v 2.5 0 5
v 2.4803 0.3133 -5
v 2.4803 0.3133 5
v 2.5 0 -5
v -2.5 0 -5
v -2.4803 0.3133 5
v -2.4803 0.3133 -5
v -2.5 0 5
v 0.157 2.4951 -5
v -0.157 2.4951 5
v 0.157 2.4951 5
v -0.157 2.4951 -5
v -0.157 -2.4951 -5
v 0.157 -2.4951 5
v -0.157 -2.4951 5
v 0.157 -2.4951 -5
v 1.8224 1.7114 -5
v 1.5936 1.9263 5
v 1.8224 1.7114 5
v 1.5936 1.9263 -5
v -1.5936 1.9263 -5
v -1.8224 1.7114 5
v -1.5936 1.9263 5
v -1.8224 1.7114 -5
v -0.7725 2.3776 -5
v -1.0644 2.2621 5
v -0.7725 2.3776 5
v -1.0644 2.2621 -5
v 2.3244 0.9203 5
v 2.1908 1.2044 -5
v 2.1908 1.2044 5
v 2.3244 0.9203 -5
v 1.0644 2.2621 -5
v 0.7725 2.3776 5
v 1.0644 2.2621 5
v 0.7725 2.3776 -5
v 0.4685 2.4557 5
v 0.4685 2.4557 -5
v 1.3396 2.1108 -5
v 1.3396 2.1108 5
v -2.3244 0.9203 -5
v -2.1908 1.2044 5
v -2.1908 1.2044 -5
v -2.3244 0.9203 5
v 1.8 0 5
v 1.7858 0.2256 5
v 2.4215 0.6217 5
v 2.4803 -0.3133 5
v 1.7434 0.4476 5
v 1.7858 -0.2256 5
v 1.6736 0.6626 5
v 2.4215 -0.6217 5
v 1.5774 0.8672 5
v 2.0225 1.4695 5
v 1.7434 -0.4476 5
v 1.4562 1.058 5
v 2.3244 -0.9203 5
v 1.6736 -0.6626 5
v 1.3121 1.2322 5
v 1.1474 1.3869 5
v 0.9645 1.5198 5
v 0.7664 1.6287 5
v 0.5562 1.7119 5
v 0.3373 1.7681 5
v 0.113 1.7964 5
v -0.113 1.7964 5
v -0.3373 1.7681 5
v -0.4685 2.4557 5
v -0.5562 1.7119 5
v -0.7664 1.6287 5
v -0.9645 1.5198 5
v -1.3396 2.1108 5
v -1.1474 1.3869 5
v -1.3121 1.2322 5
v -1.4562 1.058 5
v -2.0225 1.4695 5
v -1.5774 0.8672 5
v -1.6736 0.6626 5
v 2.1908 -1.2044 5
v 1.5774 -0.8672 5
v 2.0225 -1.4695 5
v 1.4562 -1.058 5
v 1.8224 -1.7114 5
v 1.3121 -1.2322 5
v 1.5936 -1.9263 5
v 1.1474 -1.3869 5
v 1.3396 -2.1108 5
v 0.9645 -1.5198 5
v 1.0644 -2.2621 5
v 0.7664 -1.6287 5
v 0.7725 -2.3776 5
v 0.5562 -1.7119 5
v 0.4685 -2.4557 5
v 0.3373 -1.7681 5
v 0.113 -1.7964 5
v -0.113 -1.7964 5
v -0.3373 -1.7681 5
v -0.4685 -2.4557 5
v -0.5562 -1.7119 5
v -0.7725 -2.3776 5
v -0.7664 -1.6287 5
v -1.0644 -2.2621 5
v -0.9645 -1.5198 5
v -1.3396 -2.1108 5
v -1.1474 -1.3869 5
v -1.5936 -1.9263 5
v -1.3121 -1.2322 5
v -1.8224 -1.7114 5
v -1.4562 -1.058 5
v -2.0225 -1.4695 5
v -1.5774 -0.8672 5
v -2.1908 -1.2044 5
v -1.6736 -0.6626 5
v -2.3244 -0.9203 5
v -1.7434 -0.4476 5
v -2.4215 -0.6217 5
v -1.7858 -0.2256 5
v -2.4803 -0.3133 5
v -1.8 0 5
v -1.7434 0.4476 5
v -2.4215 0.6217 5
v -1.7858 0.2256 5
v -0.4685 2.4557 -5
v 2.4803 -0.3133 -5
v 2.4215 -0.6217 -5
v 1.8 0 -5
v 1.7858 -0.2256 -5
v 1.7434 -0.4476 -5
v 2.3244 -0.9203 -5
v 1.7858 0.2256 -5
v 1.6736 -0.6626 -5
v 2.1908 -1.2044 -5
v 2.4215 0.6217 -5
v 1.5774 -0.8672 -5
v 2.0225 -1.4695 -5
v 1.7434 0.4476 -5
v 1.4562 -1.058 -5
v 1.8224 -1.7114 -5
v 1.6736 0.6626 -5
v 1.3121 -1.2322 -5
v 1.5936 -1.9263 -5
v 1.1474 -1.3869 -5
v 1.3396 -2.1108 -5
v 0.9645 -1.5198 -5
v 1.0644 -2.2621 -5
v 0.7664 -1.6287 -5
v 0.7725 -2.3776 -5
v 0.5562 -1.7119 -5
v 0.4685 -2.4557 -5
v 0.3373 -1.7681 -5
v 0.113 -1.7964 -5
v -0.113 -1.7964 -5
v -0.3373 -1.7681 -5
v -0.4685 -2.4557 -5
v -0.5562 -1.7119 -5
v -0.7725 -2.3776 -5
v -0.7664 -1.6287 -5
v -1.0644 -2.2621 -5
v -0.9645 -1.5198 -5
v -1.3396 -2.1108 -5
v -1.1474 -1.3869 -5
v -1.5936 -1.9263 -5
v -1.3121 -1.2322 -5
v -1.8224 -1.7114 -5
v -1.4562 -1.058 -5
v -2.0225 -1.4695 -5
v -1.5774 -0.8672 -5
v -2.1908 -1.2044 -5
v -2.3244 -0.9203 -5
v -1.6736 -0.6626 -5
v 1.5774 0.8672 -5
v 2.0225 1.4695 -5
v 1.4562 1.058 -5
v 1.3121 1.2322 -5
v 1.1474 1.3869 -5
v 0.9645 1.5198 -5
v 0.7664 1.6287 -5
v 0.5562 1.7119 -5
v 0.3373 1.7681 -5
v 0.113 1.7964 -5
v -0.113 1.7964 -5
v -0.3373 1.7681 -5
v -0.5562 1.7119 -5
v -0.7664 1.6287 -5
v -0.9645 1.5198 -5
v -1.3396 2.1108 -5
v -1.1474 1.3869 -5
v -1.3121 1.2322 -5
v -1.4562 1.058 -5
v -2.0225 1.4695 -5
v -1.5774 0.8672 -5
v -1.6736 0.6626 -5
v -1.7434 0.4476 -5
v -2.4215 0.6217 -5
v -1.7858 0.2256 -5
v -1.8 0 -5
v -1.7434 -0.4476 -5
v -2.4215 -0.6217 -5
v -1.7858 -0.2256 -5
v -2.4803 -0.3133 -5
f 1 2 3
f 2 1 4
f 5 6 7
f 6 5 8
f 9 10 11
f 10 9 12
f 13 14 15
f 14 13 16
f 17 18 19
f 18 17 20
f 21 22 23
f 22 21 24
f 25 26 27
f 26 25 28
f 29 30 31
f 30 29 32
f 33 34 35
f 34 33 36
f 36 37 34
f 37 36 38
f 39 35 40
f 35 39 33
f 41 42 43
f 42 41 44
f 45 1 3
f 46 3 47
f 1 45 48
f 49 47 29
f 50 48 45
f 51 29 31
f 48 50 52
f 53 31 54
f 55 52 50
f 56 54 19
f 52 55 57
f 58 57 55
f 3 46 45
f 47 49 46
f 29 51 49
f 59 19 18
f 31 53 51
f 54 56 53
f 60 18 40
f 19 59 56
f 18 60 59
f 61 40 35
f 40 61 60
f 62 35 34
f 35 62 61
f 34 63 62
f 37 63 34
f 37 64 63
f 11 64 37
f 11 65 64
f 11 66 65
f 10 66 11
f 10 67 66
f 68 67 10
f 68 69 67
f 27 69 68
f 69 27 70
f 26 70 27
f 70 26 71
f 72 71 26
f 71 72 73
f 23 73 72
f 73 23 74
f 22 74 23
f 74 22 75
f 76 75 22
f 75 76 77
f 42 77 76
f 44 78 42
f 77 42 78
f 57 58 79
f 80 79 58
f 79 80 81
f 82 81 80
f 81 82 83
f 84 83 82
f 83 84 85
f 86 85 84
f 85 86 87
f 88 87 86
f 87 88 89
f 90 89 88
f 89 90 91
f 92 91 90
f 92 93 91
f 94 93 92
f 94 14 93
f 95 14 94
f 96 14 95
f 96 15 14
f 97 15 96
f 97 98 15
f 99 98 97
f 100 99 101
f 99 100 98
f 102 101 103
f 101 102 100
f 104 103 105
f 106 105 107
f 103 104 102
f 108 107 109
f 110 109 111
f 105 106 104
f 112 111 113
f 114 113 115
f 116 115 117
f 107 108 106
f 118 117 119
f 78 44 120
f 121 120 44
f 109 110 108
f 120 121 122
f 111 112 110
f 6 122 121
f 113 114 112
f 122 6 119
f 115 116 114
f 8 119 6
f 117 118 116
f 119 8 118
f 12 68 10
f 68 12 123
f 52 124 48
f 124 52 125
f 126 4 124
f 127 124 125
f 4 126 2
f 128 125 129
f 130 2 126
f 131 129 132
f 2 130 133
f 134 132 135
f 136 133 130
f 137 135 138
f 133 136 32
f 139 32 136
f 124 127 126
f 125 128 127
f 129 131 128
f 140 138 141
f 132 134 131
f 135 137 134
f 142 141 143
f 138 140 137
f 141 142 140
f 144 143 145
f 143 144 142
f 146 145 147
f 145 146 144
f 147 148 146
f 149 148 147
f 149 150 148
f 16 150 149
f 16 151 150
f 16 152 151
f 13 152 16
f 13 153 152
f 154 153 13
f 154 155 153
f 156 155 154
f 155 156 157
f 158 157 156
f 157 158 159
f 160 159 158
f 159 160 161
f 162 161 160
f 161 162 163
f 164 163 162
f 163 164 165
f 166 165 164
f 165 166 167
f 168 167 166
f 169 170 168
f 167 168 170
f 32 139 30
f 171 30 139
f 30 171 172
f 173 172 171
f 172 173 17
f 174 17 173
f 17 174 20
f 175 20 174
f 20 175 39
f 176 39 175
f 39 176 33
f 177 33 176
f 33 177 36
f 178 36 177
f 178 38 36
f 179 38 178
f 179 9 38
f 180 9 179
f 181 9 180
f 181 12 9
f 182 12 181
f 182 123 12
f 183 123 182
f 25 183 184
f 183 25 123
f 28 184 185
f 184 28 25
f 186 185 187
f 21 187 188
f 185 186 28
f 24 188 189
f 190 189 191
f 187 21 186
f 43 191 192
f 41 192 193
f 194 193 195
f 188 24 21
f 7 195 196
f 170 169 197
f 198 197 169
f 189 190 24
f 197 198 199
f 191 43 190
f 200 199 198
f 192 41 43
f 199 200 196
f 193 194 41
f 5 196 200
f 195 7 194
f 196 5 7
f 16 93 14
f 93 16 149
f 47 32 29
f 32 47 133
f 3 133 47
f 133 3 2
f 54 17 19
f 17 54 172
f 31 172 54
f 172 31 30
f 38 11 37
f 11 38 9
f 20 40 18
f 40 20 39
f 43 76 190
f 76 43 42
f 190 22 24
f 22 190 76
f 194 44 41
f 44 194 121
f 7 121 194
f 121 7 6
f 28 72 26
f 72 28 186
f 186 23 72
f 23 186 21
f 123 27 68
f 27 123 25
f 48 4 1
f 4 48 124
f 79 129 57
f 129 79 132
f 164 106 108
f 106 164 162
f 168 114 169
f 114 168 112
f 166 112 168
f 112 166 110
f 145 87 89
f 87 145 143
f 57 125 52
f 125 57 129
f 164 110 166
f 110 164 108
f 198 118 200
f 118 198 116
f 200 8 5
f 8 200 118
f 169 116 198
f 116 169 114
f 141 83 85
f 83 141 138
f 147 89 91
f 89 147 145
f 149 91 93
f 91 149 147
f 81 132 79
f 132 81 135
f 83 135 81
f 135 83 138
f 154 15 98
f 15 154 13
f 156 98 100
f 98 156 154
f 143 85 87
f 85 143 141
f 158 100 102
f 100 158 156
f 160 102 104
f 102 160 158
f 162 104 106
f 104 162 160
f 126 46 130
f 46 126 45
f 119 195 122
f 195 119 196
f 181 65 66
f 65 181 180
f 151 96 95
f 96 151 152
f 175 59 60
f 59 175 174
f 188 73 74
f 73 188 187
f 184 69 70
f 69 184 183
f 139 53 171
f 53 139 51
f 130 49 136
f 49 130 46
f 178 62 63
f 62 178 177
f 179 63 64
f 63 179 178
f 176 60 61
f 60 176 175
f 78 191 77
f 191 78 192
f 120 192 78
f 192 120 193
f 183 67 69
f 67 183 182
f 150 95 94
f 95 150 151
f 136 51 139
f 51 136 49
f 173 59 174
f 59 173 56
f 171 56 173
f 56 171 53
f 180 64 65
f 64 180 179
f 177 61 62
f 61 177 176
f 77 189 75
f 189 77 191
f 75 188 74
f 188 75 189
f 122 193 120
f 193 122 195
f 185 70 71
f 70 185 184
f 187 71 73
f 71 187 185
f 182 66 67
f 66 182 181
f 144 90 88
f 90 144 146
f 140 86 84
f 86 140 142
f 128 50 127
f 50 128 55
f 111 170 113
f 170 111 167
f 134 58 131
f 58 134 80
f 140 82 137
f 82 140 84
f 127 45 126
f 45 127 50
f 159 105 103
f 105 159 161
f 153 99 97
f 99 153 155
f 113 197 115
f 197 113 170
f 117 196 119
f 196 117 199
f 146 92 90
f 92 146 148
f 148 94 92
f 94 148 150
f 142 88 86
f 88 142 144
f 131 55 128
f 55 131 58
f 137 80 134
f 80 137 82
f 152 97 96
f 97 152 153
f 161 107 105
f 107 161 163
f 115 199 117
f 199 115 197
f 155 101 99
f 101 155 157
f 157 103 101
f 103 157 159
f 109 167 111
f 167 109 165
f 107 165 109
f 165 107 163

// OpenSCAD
$fn = 50;


difference() {
	union() {
		translate(v = [0, 0, -5.0000000000]) {
			cylinder(h = 10, r = 2.5000000000);
		}
	}
	union() {
		translate(v = [0, 0, -100.0000000000]) {
			cylinder(h = 200, r = 1.8000000000);
		}
	}
}
